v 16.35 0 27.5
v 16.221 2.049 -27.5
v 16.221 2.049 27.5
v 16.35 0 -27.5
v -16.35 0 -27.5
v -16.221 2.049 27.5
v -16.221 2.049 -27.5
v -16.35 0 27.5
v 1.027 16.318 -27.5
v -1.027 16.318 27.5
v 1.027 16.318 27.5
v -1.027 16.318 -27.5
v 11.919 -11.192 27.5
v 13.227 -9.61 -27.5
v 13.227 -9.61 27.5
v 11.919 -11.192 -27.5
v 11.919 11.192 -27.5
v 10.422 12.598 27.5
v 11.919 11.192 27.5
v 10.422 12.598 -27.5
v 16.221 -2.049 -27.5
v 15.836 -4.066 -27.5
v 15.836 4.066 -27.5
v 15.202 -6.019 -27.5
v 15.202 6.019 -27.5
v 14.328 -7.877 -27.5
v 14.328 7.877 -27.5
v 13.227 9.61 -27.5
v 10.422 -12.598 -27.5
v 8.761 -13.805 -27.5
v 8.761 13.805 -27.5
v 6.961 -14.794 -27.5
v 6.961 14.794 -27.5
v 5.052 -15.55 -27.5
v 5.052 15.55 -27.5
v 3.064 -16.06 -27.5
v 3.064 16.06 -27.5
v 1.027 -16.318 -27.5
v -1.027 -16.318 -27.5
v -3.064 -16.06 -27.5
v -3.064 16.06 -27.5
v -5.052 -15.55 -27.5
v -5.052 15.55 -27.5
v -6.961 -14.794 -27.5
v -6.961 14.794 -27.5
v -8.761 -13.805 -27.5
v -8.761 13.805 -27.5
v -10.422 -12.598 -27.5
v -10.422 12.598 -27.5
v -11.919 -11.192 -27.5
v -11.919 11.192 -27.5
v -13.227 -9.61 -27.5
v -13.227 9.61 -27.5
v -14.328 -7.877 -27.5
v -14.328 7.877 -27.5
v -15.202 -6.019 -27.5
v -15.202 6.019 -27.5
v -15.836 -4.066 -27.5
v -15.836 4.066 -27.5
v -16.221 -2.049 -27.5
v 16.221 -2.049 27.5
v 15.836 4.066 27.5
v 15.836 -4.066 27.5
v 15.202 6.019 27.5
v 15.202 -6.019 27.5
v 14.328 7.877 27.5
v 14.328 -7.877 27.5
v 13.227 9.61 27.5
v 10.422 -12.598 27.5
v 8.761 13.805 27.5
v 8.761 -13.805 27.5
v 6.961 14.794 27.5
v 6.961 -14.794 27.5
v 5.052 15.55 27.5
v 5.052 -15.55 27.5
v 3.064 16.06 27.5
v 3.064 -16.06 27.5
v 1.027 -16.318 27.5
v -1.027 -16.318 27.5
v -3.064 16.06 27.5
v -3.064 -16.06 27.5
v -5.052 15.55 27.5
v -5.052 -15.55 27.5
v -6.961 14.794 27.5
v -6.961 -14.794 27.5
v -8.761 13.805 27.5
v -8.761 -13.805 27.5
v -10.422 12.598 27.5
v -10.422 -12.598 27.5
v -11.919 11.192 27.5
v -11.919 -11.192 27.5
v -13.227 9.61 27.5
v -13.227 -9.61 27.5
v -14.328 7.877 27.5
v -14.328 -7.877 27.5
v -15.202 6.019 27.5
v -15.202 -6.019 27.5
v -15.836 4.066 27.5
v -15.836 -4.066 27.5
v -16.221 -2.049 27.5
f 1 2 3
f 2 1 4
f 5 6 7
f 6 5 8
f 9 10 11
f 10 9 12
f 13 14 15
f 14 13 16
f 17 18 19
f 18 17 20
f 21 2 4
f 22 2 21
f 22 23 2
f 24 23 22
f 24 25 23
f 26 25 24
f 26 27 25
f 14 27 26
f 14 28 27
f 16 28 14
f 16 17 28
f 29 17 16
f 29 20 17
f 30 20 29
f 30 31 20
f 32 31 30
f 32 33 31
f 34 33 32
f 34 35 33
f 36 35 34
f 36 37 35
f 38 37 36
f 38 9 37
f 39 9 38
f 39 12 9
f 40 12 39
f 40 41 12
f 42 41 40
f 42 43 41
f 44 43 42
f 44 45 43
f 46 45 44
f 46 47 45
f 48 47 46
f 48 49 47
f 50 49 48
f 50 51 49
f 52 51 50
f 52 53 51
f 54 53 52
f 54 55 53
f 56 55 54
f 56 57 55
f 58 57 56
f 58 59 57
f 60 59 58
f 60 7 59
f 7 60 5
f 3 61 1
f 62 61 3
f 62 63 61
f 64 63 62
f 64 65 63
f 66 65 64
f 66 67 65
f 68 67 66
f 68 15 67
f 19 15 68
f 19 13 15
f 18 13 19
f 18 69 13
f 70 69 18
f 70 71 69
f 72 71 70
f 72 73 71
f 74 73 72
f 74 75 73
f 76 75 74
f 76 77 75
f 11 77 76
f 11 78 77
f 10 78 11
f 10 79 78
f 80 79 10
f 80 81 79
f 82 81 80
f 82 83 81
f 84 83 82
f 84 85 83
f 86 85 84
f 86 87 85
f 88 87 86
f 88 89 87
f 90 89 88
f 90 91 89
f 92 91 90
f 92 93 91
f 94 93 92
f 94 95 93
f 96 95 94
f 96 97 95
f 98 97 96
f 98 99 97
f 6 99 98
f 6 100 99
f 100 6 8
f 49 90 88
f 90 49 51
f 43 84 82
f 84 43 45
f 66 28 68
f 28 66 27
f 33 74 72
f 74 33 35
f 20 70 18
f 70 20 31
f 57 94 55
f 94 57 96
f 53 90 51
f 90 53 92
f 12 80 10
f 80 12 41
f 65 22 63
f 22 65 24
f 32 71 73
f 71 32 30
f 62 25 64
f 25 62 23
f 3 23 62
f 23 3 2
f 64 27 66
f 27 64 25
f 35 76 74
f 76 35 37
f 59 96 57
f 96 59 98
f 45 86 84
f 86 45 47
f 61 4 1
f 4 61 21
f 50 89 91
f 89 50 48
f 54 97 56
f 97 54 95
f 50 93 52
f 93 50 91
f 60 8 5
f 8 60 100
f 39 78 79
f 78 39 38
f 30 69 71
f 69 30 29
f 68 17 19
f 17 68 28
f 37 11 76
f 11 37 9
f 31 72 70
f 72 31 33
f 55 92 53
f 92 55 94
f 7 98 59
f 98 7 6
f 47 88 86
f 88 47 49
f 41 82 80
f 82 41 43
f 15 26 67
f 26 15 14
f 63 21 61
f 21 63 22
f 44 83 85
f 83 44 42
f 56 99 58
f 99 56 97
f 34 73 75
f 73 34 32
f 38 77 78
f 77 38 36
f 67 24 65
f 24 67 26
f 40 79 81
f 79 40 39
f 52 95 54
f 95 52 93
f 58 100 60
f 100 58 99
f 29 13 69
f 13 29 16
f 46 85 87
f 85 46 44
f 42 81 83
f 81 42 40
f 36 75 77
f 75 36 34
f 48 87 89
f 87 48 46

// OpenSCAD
$fn = 50;


difference() {
	union() {
		translate(v = [0, 0, -27.5000000000]) {
			cylinder(h = 55, r = 16.3500000000);
		}
	}
	union() {
		translate(v = [0, 0, -100.0000000000]) {
			cylinder(h = 200, r = 0);
		}
	}
}
